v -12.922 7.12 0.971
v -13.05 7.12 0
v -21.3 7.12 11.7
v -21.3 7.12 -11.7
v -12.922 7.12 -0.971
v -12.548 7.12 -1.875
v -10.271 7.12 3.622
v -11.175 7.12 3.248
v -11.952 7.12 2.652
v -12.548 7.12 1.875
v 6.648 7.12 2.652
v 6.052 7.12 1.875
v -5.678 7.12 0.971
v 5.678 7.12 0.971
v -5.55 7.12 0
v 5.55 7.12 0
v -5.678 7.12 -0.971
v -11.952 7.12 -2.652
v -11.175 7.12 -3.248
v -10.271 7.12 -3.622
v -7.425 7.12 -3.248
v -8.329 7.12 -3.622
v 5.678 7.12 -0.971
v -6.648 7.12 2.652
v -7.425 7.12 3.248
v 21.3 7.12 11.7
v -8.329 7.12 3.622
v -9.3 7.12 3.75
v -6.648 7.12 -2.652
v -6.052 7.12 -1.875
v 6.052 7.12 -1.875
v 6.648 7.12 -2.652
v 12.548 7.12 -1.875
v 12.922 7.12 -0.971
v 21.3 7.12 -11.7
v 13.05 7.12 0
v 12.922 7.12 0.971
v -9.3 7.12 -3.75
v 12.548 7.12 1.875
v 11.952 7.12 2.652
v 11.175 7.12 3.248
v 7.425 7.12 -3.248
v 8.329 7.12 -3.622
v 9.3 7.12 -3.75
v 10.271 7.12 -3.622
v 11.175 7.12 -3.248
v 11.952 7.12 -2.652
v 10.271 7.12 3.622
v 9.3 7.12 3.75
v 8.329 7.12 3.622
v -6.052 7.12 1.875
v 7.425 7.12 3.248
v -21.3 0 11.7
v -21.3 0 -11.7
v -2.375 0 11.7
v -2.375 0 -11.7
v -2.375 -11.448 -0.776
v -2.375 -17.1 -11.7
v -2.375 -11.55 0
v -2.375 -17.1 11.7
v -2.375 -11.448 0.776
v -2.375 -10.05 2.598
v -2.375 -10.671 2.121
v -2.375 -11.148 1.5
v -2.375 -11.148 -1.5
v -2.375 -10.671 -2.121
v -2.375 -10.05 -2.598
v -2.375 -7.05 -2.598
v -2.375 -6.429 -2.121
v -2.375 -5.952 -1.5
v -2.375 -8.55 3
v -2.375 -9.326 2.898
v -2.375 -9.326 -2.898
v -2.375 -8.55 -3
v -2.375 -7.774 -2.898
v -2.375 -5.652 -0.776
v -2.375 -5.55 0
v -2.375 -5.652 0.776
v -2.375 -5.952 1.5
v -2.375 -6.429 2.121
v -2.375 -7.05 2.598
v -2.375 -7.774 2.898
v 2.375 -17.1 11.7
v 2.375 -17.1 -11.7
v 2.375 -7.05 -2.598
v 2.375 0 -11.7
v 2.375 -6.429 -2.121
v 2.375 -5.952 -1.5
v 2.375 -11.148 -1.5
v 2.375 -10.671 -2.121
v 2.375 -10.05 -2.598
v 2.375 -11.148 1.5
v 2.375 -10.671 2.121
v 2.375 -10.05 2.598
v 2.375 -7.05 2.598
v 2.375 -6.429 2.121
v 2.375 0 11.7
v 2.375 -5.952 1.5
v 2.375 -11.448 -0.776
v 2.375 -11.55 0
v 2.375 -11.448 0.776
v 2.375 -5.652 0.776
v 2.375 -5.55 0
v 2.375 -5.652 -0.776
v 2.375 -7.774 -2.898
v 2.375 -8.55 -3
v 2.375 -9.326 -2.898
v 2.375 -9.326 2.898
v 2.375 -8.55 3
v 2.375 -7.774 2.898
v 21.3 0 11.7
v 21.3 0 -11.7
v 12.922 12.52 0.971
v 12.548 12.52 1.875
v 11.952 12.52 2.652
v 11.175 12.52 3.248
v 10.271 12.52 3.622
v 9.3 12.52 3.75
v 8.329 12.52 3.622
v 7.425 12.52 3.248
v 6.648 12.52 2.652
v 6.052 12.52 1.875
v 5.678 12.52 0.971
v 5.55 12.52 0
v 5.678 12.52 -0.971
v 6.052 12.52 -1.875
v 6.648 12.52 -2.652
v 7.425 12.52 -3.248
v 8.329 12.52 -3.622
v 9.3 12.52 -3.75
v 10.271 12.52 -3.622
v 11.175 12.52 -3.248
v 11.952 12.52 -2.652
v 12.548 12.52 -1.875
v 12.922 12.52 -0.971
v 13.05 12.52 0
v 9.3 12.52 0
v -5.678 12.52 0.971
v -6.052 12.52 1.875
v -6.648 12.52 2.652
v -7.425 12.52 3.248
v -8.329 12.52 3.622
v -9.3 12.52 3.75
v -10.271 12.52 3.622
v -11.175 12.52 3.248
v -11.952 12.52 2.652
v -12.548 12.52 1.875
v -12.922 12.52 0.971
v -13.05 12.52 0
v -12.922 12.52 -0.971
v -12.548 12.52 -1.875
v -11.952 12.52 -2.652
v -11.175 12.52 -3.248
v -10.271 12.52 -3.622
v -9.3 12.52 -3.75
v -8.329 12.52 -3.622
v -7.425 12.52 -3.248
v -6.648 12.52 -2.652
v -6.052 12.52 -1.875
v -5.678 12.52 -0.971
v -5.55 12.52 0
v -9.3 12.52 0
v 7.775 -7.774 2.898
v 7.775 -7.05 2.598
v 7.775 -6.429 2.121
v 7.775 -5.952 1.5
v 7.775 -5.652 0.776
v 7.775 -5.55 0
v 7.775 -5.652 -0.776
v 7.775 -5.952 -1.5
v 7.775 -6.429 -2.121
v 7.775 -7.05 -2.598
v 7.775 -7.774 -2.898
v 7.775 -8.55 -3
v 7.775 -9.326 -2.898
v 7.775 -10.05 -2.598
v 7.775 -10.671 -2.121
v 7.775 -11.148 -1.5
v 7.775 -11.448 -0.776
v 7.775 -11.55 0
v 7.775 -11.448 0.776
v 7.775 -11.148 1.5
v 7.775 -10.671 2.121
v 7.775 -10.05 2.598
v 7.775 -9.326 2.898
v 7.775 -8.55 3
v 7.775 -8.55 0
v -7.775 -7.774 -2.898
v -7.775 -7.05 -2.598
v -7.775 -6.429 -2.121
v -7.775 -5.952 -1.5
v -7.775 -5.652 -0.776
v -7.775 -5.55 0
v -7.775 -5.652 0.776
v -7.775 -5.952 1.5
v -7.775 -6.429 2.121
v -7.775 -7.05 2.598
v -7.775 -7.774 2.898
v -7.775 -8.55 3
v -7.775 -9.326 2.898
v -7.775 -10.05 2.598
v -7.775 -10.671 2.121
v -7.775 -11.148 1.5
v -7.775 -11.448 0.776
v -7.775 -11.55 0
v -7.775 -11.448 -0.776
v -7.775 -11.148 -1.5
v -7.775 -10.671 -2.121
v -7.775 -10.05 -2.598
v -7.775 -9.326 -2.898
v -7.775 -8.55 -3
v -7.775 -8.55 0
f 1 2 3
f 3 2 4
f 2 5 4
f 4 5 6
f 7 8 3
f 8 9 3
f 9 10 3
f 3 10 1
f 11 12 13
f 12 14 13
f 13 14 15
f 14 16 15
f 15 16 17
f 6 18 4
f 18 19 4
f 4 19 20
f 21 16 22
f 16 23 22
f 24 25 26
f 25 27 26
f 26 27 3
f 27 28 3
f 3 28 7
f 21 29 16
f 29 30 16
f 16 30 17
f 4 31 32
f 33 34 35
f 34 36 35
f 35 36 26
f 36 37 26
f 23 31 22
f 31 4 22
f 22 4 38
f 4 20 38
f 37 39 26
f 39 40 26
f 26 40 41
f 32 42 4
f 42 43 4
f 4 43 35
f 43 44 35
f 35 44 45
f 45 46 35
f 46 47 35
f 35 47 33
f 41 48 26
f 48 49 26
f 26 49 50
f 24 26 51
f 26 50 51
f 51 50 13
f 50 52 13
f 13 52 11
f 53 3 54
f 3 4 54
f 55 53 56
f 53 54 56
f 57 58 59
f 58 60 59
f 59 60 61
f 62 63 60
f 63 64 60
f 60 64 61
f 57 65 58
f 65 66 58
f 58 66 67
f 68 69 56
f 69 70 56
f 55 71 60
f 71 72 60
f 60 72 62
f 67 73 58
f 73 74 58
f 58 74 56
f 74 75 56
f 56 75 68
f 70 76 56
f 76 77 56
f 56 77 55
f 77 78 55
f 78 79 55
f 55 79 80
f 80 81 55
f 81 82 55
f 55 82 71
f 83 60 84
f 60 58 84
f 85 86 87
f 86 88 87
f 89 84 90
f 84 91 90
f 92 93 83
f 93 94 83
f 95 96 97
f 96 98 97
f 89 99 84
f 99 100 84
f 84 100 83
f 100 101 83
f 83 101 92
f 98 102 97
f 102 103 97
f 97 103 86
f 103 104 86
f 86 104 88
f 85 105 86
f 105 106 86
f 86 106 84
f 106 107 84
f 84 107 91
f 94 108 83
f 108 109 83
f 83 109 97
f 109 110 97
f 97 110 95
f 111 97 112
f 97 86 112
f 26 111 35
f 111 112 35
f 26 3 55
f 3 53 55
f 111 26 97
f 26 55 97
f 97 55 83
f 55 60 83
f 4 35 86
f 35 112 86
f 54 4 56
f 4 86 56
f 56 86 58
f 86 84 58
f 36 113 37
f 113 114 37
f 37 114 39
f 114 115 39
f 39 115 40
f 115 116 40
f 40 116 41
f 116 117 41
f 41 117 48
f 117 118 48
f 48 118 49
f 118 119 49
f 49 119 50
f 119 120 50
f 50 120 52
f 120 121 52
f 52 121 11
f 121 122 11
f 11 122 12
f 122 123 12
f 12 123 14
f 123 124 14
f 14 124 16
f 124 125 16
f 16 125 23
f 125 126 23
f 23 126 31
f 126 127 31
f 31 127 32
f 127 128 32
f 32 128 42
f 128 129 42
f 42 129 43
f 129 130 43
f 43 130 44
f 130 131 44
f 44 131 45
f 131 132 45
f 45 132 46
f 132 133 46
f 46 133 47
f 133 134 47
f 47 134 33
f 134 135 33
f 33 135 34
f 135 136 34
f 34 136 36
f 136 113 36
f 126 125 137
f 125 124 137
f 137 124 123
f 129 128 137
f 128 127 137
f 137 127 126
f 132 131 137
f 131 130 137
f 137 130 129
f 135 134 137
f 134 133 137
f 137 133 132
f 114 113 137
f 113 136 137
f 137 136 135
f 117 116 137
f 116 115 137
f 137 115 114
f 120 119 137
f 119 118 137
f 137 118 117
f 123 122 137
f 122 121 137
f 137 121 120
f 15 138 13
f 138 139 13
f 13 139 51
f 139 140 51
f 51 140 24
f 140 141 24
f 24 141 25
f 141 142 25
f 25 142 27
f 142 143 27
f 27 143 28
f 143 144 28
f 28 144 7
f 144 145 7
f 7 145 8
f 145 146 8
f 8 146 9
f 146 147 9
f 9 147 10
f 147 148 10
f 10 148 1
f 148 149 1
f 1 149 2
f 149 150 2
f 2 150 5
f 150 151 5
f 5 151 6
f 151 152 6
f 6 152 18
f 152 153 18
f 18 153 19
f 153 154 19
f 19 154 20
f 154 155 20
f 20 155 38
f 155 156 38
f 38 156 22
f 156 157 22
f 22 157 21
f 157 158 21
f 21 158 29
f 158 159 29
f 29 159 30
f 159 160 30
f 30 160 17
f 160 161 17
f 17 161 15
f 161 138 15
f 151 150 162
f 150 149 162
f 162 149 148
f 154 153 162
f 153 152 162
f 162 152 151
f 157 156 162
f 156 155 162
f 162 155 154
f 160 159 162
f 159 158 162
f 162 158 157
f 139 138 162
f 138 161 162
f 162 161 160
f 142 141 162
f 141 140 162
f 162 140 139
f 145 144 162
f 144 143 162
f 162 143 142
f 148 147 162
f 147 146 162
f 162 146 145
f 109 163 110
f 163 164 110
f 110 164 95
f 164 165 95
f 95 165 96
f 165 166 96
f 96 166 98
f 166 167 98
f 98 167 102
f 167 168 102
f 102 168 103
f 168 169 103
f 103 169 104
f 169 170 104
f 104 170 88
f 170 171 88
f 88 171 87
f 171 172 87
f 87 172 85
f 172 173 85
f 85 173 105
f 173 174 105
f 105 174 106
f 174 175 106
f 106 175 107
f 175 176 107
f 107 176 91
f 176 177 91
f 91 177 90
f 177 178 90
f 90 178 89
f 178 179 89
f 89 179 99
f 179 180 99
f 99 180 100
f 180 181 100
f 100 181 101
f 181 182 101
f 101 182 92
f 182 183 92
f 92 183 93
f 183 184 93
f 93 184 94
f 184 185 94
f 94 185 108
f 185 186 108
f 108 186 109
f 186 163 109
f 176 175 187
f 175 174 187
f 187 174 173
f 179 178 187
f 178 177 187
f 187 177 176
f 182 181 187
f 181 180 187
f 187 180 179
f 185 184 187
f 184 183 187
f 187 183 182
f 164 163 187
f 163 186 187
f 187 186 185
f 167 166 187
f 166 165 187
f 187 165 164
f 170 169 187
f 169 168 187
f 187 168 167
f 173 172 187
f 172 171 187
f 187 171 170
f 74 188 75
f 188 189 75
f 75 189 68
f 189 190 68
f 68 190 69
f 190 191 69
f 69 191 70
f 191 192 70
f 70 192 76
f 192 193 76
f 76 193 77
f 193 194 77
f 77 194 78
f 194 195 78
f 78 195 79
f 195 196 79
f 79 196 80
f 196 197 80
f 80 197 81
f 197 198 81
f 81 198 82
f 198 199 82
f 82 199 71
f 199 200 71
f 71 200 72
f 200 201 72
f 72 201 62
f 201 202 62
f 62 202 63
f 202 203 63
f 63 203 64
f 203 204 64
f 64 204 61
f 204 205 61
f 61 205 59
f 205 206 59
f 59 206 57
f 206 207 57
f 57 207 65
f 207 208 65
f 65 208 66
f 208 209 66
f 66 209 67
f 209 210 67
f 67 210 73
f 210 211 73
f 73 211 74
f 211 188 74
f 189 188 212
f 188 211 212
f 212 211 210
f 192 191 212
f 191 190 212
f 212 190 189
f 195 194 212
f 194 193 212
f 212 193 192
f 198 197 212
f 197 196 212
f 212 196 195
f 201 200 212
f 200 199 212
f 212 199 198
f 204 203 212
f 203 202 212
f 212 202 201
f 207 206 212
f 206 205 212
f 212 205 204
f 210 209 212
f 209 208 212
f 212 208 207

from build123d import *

# Parameters (mm, degrees)
SALIENTE_EXTRUIR1_DEPTH = 11.7
CROQUIS3_R              = 3.75
SALIENTE_EXTRUIR2_DEPTH = 5.4
CROQUIS5_R              = 3
SALIENTE_EXTRUIR3_DEPTH = 5.4


with BuildPart() as part:
    # Croquis2 → Saliente-Extruir1 (new, symmetric)
    with BuildSketch(Plane.XY):
        Polygon((-21.3, 7.12), (-21.3, 0), (-2.375, 0), (-2.375, -17.1), (2.375, -17.1), (2.375, 0), (21.3, 0), (21.3, 7.12), align=None)
    extrude(amount=SALIENTE_EXTRUIR1_DEPTH, both=True)

    # Croquis3 → Saliente-Extruir2 (add)
    with BuildSketch(Plane(origin=(0, 7.12, 0), x_dir=(1, 0, 0), z_dir=(0, 1, 0))):
        with Locations((-9.3, 0)):
            Circle(CROQUIS3_R)
        with Locations((9.3, 0)):
            Circle(CROQUIS3_R)
    extrude(amount=SALIENTE_EXTRUIR2_DEPTH)

    # Croquis5 → Saliente-Extruir3 (add)
    with BuildSketch(Plane(origin=(2.375, 0, 0), x_dir=(0, 0, -1), z_dir=(1, 0, 0))):
        with Locations(Location((0, -8.55, 0), (0, 0, 180))):
            Circle(CROQUIS5_R)
    saliente_extruir3 = extrude(amount=SALIENTE_EXTRUIR3_DEPTH)

    # Simetría1: Saliente-Extruir3 across plane
    add(saliente_extruir3.mirror(Plane(origin=(0, 0, 0), x_dir=(0, 0, 1), z_dir=(1, 0, 0))))


solid = part.part
